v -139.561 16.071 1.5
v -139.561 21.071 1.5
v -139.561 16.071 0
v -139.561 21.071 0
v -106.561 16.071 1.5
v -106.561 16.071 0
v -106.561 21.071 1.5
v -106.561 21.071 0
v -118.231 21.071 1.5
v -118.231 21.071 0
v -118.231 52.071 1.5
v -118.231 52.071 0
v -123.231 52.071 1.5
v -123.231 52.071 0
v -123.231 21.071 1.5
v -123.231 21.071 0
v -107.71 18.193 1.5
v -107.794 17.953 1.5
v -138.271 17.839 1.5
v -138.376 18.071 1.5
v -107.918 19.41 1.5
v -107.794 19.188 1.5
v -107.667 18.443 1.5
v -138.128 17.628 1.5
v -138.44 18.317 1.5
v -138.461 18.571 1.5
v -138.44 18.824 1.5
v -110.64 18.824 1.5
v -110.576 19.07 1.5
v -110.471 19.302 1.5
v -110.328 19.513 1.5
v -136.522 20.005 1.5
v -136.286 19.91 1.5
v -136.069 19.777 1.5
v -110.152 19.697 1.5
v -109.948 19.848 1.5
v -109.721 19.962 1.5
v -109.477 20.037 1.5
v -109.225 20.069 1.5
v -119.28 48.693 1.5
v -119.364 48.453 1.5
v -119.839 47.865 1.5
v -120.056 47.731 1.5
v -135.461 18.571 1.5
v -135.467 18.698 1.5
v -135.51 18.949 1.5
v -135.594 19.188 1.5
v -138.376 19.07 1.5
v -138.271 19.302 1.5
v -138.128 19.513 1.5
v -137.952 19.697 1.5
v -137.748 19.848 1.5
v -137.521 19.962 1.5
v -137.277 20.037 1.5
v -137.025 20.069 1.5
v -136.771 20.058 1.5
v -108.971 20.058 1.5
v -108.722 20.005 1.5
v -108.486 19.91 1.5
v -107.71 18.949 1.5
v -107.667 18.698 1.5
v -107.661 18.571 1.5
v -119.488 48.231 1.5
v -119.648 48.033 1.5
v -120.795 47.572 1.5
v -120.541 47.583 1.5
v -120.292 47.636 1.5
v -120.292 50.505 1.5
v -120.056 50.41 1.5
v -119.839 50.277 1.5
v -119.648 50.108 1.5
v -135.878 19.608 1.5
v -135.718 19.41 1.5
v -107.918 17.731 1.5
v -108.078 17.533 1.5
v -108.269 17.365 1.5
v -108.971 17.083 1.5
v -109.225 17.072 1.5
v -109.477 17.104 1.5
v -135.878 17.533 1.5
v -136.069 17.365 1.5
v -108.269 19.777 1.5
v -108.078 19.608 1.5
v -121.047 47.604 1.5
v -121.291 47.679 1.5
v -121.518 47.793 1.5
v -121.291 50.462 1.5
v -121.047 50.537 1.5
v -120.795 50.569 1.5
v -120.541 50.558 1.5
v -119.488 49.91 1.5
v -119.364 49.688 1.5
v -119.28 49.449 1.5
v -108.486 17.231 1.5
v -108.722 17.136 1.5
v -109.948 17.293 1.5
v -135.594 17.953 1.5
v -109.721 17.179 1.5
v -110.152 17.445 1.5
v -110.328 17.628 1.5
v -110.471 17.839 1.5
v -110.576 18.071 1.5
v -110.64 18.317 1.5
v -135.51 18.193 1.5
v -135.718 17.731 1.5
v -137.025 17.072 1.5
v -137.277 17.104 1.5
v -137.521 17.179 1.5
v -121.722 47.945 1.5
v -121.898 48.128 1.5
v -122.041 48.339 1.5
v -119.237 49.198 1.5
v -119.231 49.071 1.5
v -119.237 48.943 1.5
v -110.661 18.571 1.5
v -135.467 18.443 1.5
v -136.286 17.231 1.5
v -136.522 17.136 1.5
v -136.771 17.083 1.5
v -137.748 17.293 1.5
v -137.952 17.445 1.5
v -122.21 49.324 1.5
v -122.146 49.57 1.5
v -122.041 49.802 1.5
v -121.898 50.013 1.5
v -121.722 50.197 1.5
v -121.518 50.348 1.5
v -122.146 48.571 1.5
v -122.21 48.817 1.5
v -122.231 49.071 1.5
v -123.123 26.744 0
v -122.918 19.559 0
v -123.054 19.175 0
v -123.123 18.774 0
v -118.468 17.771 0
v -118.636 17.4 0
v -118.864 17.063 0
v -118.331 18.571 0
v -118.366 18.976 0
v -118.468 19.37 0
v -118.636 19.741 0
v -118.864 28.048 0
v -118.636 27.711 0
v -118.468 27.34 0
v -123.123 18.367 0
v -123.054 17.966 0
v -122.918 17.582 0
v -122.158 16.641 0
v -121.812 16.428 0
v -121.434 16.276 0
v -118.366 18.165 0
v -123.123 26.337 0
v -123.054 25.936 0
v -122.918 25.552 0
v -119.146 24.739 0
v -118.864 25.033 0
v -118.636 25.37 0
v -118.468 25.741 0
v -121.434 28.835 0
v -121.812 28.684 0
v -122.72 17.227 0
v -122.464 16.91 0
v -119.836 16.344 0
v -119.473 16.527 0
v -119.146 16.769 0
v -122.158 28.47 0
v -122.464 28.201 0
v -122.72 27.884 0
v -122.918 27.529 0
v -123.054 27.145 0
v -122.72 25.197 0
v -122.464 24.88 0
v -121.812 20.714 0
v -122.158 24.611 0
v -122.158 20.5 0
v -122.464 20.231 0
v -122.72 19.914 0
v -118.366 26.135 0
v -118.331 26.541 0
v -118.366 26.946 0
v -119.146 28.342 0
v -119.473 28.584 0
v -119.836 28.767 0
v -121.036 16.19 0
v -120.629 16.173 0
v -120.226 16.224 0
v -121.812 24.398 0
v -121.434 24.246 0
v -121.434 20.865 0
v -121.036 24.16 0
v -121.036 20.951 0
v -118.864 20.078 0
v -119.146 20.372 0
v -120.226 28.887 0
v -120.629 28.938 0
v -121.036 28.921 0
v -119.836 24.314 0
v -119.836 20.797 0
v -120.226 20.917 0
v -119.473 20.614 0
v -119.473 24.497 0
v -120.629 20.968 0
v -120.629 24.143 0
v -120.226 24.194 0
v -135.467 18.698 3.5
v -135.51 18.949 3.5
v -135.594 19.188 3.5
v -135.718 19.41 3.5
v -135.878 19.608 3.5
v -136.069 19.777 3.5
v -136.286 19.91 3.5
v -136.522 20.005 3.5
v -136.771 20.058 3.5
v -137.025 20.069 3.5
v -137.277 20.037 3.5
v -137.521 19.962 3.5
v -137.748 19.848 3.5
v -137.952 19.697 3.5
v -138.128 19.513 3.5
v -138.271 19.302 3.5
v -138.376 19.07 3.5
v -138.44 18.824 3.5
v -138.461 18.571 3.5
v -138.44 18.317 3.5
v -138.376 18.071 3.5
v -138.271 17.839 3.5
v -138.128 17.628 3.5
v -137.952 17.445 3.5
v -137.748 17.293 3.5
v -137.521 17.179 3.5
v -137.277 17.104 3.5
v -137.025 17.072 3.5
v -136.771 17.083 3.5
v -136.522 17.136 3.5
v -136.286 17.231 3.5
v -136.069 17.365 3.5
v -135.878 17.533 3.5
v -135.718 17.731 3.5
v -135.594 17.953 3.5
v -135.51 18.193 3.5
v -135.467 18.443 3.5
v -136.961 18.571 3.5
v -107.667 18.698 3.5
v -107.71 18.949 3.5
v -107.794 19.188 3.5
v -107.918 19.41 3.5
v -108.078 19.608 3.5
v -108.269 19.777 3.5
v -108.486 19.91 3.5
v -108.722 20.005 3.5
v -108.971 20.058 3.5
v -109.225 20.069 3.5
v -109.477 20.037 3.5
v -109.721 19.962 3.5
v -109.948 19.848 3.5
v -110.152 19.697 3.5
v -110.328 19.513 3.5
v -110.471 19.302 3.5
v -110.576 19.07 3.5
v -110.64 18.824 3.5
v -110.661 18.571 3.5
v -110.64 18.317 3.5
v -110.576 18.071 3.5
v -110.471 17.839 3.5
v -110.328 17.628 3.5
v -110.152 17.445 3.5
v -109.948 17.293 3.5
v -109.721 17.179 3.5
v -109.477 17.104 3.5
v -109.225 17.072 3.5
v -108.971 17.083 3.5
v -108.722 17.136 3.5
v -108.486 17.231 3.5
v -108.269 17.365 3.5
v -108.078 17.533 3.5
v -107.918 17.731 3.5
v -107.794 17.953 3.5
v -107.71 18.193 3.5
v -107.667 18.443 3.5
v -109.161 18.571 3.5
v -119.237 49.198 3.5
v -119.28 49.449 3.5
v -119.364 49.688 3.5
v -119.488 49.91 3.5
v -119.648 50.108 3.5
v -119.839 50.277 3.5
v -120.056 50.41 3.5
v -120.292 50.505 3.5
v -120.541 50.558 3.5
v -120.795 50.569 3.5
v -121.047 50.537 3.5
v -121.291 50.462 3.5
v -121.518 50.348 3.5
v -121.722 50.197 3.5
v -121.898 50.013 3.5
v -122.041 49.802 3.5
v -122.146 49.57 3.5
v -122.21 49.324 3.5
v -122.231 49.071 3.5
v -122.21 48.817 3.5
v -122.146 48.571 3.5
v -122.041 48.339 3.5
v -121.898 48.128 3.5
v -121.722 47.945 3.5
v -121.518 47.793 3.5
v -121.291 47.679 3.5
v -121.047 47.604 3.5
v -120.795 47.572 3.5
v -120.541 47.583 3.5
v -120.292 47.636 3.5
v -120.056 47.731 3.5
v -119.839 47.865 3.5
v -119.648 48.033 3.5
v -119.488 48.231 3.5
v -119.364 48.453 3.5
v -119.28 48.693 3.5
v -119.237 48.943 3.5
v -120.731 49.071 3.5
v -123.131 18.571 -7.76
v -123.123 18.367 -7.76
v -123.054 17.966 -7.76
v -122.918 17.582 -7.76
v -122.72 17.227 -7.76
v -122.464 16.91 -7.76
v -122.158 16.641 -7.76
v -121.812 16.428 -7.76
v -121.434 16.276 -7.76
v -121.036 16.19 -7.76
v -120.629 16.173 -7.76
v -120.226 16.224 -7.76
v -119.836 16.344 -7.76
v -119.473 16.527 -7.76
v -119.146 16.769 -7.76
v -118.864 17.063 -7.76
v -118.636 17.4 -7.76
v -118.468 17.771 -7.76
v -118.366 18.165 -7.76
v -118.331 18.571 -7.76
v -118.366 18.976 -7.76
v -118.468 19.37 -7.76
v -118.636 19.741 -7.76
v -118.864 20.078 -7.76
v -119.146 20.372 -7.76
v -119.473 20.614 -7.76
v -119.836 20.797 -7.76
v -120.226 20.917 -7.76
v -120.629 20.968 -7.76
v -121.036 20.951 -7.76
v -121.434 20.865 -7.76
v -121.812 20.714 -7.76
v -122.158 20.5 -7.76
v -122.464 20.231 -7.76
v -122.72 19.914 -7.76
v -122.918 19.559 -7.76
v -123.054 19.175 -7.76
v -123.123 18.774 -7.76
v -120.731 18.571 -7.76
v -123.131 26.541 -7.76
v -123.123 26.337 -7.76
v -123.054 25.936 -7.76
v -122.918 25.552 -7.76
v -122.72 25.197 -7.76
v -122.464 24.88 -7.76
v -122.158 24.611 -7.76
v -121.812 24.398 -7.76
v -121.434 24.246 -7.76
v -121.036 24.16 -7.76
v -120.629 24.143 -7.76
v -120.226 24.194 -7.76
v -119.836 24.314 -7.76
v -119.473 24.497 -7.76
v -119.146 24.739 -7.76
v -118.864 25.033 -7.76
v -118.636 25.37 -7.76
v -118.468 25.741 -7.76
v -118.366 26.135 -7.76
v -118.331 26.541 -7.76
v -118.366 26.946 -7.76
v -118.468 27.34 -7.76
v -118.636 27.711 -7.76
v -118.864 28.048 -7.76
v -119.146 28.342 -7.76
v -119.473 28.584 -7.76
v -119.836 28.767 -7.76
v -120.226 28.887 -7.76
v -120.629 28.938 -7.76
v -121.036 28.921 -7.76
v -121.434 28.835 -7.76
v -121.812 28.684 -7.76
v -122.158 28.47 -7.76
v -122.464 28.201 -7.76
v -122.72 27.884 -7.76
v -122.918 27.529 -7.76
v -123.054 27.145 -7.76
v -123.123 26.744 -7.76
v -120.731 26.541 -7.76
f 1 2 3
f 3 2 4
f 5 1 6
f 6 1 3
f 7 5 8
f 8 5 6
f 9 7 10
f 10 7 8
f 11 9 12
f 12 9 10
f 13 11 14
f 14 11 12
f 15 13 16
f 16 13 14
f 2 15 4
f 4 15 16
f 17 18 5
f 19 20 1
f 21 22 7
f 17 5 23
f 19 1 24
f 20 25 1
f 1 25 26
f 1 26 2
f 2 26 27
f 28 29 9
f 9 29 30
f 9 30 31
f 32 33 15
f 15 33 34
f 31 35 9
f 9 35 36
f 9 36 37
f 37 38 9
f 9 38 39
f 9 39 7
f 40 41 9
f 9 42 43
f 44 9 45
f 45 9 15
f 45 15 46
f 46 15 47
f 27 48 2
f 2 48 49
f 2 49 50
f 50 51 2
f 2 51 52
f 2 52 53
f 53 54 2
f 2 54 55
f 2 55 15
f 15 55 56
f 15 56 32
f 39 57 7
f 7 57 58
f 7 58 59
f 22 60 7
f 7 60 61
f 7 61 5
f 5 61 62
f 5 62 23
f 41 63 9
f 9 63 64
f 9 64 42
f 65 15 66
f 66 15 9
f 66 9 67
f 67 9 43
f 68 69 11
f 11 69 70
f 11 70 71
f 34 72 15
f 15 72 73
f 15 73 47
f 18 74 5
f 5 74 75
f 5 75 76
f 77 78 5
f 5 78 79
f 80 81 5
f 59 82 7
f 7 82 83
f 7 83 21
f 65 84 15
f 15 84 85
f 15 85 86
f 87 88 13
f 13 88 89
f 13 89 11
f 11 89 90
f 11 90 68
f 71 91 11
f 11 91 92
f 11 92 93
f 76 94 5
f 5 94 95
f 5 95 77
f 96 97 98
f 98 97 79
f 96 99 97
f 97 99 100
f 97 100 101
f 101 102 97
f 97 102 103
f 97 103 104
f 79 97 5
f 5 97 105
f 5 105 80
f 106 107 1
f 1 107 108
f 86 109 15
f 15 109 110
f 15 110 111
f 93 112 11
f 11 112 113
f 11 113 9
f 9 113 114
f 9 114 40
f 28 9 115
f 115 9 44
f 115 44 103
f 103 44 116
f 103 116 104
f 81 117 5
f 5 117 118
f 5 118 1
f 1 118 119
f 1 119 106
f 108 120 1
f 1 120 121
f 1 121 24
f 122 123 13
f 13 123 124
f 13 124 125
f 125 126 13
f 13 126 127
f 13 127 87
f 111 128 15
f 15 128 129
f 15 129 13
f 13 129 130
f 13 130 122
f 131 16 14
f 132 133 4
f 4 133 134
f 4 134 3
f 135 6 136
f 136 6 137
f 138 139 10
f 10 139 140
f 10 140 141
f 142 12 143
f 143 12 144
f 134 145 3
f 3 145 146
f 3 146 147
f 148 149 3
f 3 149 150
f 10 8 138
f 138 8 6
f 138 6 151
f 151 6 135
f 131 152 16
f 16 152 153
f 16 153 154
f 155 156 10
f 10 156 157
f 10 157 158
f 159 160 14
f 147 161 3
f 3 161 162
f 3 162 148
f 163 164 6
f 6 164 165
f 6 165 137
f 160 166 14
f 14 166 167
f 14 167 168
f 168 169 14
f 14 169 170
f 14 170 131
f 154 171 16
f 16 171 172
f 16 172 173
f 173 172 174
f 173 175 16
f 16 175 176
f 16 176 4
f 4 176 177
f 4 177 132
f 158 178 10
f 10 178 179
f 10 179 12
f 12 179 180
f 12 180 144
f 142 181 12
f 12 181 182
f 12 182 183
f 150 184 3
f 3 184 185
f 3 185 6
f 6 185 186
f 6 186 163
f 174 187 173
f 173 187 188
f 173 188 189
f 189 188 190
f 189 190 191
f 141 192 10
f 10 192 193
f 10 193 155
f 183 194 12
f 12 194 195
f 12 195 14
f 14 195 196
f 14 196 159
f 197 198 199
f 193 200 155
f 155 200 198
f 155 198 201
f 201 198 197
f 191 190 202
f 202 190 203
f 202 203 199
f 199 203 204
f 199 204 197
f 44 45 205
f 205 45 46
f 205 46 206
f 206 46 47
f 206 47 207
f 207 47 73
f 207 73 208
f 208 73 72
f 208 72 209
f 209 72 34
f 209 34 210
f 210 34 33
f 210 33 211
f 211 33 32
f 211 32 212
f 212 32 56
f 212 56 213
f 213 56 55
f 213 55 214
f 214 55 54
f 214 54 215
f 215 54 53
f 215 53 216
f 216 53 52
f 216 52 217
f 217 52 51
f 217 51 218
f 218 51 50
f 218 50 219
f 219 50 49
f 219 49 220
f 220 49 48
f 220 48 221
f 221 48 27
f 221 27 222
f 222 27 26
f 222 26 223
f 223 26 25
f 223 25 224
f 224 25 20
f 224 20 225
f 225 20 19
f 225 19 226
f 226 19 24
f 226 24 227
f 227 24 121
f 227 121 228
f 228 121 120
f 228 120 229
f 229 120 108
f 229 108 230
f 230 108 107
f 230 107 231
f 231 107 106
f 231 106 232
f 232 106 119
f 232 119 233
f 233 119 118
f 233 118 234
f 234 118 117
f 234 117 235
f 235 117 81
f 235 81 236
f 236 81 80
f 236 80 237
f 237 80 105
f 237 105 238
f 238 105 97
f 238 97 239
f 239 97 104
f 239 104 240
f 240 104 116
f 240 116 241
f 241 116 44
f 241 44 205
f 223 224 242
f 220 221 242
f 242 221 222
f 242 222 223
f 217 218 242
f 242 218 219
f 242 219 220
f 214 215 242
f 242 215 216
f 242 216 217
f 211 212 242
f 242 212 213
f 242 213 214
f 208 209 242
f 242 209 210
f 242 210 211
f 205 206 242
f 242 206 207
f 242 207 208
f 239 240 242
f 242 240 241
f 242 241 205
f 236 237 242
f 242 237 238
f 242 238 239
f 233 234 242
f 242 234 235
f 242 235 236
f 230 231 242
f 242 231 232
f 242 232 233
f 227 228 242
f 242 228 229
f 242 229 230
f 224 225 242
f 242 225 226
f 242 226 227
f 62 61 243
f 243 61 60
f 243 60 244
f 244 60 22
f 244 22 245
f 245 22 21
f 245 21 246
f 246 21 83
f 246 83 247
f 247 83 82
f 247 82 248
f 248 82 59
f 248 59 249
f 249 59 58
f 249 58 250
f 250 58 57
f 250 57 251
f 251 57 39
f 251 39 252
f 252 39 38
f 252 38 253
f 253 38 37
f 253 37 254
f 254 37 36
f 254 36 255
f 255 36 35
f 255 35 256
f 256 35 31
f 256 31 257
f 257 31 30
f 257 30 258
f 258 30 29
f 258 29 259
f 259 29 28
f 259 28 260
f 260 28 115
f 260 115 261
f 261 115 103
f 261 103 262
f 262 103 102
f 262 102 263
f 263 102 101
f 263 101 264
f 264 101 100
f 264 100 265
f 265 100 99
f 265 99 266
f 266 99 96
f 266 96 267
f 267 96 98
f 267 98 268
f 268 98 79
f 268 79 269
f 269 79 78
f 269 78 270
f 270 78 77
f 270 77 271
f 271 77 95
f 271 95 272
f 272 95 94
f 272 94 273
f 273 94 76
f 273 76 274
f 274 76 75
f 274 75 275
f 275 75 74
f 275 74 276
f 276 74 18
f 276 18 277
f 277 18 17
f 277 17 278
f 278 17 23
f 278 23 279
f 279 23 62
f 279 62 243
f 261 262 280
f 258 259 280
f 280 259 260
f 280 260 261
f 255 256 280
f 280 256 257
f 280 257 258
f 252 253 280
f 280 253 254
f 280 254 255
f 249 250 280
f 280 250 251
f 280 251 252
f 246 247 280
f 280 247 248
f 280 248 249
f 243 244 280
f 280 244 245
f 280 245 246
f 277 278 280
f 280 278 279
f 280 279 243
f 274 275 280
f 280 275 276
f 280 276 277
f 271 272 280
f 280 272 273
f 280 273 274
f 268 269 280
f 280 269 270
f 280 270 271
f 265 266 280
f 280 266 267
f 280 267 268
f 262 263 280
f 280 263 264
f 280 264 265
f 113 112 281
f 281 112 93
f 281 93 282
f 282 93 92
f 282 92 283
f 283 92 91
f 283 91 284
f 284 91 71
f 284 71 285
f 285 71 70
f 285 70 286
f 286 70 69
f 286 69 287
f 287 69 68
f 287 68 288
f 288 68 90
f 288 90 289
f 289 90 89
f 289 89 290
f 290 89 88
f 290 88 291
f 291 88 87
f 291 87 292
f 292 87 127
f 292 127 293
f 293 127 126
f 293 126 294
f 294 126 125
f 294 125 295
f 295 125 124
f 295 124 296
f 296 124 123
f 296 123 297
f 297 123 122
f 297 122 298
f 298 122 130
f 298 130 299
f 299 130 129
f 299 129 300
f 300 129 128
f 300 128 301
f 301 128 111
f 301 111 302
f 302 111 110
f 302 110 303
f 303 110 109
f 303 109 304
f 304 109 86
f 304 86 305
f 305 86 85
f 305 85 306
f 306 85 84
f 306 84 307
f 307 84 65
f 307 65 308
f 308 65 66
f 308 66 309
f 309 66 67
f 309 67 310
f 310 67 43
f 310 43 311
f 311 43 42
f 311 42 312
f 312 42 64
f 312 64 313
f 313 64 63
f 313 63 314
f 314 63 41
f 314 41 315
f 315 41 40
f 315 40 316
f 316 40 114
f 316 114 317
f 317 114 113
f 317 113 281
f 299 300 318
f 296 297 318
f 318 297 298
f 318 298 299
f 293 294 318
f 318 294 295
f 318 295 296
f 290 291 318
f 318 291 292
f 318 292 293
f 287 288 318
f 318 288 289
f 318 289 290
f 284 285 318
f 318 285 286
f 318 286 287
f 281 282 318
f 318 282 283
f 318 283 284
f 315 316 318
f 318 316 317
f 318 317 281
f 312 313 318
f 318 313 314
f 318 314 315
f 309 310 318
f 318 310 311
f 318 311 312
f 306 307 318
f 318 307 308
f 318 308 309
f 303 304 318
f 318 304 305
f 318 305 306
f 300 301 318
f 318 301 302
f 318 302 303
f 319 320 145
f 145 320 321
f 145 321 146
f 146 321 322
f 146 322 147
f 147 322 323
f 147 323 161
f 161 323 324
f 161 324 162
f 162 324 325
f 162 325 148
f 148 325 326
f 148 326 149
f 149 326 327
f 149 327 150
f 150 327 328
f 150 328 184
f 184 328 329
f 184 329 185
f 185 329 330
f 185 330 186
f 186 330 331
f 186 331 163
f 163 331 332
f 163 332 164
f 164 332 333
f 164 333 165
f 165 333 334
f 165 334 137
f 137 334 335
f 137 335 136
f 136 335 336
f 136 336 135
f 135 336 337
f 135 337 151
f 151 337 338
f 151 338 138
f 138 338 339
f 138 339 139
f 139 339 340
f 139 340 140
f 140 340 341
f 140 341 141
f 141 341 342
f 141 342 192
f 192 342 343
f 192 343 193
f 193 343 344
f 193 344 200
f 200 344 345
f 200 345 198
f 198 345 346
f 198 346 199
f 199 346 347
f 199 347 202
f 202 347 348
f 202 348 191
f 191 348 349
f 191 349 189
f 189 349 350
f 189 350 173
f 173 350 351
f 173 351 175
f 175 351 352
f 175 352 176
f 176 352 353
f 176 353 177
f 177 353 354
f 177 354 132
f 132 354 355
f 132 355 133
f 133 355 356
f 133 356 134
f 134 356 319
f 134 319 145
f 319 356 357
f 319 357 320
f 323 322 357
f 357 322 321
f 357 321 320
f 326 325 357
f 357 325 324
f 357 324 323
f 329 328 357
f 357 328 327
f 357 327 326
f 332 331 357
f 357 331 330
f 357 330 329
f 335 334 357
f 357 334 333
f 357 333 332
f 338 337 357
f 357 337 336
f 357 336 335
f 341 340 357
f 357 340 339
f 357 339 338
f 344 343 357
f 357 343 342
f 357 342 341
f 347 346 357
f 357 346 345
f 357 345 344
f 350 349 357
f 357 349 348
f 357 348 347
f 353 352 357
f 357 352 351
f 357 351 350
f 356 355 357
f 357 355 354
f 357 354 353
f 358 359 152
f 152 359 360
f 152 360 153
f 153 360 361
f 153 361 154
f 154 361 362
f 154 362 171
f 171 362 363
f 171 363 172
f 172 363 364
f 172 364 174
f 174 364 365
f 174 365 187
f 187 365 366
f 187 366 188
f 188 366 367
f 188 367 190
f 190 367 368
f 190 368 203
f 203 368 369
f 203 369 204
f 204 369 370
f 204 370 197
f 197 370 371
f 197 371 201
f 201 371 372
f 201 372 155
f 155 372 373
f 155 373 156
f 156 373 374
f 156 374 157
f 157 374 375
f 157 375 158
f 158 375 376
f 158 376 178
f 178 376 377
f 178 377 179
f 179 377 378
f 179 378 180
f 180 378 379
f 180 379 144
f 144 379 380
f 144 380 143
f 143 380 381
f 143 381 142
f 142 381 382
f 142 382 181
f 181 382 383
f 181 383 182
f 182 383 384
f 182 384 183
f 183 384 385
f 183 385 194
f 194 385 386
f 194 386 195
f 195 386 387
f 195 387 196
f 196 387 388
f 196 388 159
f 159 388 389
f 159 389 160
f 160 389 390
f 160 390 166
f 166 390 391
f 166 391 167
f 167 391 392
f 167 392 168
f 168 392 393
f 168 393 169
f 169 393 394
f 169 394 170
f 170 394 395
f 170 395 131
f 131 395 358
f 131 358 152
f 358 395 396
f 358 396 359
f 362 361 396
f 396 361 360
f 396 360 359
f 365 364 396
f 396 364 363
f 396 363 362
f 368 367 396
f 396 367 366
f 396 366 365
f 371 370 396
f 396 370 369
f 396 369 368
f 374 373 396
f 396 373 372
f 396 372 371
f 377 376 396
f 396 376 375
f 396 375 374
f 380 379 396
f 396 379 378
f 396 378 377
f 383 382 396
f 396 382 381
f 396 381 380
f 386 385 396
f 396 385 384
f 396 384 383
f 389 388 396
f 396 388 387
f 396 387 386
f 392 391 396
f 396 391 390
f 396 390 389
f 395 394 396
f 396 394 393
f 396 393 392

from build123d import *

# Parameters (mm, degrees)
BOSS_EXTRUDE2_DEPTH = 1.5
SKETCH5_R           = 1.5
BOSS_EXTRUDE5_DEPTH = 3.5
SKETCH6_R           = 2.4
BOSS_EXTRUDE6_DEPTH = 7.76


with BuildPart() as part:
    # Sketch4 → Boss-Extrude2 (new body)
    with BuildSketch(Plane.XY):
        Polygon((-139.561248012, 16.070535031), (-106.561248012, 16.070535031), (-106.561248012, 21.070535031), (-118.231248012, 21.070535031), (-118.231248012, 52.070535031), (-123.231248012, 52.070535031), (-123.231248012, 21.070535031), (-139.561248012, 21.070535031), align=None)
    extrude(amount=BOSS_EXTRUDE2_DEPTH)

    # Sketch5 → Boss-Extrude5 (add)
    with BuildSketch(Plane(origin=(0, 0, 0), x_dir=(-1, 0, 0), z_dir=(0, 0, -1))):
        with Locations((136.961248012, 18.570535031)):
            Circle(SKETCH5_R)
        with Locations((109.161248012, 18.570535031)):
            Circle(SKETCH5_R)
        with Locations((120.731248012, 49.070535031)):
            Circle(SKETCH5_R)
    extrude(amount=-BOSS_EXTRUDE5_DEPTH)

    # Sketch6 → Boss-Extrude6 (add)
    with BuildSketch(Plane(origin=(0, 0, 0), x_dir=(-1, 0, 0), z_dir=(0, 0, -1))):
        with Locations((120.731248012, 18.570535031)):
            Circle(SKETCH6_R)
        with Locations((120.731248012, 26.540535031)):
            Circle(SKETCH6_R)
    extrude(amount=BOSS_EXTRUDE6_DEPTH)


solid = part.part
